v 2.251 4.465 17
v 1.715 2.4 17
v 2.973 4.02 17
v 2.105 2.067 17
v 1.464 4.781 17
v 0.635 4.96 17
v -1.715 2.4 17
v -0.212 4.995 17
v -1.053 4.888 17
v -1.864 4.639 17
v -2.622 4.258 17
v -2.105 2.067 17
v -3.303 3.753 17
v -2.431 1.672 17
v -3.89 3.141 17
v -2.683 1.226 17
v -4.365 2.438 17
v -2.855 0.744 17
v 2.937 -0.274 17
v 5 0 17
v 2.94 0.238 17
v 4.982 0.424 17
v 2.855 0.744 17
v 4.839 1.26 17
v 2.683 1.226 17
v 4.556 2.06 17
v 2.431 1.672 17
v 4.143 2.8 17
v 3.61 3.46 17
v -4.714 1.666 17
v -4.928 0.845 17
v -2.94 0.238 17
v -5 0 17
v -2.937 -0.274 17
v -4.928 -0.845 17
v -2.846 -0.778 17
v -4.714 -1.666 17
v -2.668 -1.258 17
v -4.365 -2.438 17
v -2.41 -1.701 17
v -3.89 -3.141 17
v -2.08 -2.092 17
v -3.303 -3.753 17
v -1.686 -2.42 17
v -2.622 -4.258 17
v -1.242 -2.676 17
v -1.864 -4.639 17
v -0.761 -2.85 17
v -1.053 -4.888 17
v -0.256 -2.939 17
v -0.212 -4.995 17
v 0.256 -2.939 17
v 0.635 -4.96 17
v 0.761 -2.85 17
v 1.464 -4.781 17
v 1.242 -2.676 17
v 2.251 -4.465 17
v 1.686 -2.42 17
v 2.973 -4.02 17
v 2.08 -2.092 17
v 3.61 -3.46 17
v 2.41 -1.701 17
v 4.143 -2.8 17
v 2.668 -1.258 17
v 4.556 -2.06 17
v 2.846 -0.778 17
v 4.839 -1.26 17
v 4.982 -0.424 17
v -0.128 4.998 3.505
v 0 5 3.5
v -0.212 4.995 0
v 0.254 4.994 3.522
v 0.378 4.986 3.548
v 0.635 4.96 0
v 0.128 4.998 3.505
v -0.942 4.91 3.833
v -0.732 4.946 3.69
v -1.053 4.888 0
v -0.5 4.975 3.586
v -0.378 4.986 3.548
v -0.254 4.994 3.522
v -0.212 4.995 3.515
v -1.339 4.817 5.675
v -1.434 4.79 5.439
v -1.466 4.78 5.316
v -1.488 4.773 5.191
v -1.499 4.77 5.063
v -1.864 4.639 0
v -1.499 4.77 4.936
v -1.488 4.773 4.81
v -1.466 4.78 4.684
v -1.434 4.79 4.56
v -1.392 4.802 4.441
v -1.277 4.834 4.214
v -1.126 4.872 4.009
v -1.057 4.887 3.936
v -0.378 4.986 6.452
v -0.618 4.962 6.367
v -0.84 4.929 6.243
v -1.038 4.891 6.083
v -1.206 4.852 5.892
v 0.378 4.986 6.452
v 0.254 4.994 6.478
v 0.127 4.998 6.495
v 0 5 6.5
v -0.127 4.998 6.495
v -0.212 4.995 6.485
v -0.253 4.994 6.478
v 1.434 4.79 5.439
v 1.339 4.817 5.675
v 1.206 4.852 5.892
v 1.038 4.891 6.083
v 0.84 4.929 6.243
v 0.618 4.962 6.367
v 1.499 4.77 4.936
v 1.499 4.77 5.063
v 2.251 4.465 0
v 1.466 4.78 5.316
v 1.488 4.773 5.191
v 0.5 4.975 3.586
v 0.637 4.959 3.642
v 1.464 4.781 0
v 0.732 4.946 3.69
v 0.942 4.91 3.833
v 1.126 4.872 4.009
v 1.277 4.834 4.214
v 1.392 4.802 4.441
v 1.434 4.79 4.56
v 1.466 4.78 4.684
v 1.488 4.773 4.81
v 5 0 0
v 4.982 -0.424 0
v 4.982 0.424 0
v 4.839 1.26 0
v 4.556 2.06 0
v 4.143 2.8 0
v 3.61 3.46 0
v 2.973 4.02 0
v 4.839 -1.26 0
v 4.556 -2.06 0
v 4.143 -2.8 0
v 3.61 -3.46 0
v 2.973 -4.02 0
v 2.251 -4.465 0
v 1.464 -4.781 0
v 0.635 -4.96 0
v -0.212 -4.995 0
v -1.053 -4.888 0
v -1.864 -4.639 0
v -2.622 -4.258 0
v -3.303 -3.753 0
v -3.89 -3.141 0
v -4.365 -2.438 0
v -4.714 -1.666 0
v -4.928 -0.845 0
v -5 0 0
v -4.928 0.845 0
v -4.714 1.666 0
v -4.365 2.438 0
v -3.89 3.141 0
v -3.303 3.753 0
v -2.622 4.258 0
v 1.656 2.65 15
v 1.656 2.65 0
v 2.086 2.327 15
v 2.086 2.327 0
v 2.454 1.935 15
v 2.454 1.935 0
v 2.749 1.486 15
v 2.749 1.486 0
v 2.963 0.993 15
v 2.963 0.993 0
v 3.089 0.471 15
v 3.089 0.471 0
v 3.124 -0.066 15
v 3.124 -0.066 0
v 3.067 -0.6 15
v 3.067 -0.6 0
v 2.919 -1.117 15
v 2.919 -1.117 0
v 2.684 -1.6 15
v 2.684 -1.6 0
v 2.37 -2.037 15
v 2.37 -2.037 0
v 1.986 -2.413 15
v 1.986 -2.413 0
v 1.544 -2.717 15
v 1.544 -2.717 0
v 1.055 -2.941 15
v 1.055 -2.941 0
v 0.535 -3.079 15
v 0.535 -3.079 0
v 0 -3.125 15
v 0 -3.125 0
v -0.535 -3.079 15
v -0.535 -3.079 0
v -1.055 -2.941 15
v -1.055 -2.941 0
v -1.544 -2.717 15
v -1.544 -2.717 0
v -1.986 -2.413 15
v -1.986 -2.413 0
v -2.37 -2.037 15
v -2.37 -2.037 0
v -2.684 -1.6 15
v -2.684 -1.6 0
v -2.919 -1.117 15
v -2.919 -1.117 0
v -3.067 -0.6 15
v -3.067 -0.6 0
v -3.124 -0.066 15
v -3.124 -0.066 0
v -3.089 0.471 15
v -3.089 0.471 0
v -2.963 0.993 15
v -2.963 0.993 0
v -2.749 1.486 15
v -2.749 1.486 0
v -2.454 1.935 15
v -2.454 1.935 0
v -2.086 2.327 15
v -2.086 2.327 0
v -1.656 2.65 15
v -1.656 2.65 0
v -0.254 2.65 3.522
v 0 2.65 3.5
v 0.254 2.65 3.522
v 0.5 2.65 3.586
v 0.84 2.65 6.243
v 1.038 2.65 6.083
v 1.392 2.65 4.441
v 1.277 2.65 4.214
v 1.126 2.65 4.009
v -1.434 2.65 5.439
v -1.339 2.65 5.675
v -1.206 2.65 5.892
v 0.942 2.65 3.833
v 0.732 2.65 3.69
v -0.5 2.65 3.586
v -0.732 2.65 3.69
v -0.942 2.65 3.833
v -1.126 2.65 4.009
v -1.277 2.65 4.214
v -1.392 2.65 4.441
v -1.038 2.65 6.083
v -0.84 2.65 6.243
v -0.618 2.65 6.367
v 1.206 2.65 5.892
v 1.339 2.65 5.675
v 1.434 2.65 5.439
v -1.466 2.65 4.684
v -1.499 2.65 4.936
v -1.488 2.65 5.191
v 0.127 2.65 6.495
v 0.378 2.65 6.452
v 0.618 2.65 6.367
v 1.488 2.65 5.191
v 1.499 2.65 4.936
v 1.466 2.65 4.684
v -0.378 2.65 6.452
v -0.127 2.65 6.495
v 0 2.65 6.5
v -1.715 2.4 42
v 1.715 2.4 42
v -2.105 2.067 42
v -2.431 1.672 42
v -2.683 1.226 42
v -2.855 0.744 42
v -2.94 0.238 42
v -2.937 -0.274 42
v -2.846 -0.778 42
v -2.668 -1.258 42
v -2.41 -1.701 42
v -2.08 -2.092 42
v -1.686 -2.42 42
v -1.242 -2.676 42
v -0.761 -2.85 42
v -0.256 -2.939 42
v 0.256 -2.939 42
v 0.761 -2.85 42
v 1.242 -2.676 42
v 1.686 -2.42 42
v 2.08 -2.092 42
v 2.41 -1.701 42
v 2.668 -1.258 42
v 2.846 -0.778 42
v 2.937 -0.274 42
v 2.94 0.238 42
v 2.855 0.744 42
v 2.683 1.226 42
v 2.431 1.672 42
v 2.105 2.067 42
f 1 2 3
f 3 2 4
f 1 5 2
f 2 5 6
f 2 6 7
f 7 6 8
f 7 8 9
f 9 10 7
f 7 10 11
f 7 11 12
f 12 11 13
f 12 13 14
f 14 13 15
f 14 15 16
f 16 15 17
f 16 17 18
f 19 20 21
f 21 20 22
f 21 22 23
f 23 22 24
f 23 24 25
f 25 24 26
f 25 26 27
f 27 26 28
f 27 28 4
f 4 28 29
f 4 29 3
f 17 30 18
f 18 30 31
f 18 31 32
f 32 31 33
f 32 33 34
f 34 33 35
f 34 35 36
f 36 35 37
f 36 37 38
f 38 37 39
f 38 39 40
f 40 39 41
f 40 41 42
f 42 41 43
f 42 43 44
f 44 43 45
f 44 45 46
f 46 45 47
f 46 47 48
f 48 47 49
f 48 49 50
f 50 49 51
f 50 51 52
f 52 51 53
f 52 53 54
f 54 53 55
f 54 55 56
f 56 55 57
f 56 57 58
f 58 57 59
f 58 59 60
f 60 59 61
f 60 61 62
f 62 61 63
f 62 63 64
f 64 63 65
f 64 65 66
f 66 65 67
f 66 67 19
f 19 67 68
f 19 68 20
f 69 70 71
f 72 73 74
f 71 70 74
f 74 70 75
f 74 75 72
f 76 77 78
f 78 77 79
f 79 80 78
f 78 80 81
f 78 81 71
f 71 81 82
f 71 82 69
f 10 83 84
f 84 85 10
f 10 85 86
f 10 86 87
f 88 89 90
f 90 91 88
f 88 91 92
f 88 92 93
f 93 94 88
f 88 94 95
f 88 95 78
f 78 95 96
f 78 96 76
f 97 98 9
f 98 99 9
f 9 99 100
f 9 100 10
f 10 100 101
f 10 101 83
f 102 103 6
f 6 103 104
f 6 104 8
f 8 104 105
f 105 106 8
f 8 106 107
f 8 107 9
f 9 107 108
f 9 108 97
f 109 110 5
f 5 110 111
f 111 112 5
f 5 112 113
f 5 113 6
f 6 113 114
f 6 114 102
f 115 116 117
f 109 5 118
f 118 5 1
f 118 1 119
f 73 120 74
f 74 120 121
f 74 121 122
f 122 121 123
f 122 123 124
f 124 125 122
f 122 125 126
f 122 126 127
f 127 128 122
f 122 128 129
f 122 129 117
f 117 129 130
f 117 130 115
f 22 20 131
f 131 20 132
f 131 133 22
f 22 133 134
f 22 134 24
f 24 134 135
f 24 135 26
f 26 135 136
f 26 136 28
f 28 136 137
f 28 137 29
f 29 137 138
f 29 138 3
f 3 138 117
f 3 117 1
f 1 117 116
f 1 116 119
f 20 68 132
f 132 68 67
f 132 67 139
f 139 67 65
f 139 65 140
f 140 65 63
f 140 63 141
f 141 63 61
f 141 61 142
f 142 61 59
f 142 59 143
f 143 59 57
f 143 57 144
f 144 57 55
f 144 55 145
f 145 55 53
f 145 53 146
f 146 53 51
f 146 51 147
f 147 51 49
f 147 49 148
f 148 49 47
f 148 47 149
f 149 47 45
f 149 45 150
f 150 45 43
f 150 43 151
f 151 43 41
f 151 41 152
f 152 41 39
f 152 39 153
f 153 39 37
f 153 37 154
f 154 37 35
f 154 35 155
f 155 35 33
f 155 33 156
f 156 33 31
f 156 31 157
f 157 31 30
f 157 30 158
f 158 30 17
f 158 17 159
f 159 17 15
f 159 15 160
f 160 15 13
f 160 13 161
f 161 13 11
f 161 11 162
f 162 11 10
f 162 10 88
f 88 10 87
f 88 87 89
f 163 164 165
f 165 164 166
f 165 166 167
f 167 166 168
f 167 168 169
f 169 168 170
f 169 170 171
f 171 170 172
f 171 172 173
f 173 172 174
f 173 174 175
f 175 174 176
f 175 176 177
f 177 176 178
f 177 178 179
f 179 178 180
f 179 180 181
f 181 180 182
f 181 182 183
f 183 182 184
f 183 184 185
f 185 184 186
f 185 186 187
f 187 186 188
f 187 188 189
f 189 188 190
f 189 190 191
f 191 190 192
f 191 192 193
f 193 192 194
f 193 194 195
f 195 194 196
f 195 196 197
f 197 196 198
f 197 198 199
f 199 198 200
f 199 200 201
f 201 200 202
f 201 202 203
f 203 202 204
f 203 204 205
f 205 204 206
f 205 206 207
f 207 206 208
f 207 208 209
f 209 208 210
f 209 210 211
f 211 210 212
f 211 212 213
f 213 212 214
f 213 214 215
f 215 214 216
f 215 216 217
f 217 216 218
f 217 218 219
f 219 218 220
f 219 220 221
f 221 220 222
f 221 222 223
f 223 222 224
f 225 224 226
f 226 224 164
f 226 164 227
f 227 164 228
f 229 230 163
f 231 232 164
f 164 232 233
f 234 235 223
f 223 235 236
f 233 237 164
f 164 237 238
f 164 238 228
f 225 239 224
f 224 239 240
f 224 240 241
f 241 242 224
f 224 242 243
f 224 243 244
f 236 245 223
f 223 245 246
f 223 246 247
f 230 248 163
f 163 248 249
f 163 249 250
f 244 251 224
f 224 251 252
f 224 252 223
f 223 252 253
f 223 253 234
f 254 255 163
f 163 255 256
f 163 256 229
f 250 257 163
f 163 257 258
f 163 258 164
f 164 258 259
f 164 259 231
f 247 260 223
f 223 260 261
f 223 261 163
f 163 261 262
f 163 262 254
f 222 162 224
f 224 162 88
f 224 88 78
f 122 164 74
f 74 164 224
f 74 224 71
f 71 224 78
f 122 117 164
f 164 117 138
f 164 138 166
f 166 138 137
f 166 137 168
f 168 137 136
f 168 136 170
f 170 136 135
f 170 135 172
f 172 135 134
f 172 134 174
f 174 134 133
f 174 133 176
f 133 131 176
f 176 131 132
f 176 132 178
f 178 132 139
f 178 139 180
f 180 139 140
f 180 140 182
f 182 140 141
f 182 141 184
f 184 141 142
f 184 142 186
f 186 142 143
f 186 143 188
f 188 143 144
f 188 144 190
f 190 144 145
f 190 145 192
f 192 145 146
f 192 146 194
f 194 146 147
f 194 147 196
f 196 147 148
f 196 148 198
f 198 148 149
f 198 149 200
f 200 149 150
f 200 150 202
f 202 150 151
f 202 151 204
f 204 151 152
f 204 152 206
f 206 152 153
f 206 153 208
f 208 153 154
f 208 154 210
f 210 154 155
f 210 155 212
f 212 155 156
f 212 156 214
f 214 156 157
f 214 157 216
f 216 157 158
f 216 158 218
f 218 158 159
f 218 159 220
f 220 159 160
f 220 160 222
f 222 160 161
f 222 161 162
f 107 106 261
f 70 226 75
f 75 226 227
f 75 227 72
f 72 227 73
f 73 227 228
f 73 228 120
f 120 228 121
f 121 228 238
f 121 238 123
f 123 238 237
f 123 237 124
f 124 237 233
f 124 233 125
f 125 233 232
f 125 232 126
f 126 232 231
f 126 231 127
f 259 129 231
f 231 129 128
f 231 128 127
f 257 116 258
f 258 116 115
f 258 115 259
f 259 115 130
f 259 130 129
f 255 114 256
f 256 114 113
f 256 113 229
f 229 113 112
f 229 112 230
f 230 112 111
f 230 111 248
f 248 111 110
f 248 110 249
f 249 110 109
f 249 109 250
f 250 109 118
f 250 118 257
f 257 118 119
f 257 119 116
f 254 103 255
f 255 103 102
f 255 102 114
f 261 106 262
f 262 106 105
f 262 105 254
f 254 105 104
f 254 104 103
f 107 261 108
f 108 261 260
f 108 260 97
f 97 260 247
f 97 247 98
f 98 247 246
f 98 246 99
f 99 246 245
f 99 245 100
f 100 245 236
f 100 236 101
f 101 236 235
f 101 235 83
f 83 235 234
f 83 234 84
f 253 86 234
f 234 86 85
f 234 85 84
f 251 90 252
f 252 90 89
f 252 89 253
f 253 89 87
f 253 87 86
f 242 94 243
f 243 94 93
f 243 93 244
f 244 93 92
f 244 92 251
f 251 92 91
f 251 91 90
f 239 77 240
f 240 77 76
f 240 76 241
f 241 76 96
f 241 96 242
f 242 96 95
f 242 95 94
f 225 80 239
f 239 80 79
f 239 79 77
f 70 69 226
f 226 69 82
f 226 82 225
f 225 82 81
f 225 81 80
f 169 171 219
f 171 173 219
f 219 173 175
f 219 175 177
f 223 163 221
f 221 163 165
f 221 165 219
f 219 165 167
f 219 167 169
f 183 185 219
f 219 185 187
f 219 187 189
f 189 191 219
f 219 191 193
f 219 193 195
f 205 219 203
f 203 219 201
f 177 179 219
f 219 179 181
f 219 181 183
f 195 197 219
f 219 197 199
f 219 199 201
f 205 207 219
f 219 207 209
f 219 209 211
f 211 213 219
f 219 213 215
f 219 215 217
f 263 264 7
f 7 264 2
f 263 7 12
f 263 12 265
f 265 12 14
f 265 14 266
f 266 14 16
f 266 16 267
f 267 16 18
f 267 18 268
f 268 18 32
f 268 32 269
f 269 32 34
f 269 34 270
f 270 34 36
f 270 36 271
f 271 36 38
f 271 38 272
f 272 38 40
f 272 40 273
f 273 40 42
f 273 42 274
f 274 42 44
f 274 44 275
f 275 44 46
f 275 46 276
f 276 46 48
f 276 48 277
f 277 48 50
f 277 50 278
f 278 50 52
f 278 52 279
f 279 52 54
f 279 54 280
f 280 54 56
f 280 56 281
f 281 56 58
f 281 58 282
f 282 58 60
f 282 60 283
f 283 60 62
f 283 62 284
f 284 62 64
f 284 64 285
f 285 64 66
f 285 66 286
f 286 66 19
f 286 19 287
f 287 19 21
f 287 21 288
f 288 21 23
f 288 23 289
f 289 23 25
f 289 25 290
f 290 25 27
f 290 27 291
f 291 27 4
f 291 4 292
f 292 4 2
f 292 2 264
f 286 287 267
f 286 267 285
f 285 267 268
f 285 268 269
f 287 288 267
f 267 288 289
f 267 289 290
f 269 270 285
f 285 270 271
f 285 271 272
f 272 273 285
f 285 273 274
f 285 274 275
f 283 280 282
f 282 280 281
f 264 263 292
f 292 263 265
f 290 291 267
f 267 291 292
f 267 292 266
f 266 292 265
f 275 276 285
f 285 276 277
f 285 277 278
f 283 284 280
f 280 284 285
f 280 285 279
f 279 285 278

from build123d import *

# Parameters (mm, degrees)
SKETCH1_R               = 5
BOSS_EXTRUDE1_DEPTH     = 15
CUT_EXTRUDE1_REACH      = 18.583
CUT_EXTRUDE1_END_RADIUS = 5
SKETCH3_R               = 1.5
SKETCH4_R               = 5
BOSS_EXTRUDE2_DEPTH     = 2
BOSS_EXTRUDE3_DEPTH     = 25


with BuildPart() as part:
    # Sketch1 → Boss-Extrude1 (new body)
    with BuildSketch(Plane.XY):
        Circle(SKETCH1_R)
        with BuildLine():
            Line((-1.656238208, 2.65), (1.656238208, 2.65))
            ThreePointArc((1.656238208, 2.65), (0, -3.125), (-1.656238208, 2.65))
        make_face(mode=Mode.SUBTRACT)
    extrude(amount=BOSS_EXTRUDE1_DEPTH)

    # Cut-Extrude1: up to this cylinder (the profile starts inside it)
    cut_extrude1_end = Plane(origin=(0, 0, 5), z_dir=(0, 0, -1)) * Cylinder(CUT_EXTRUDE1_END_RADIUS, 48.166, mode=Mode.PRIVATE)
    # Sketch3 → Cut-Extrude1 (cut, up to the surface)
    with BuildSketch(Plane(origin=(0, 0, 0), x_dir=(1, 0, 0), z_dir=(0, 1, 0)), mode=Mode.PRIVATE) as cut_extrude1_sk1:
        with Locations(Location((0, -5, 0), (0, 0, 90))):
            Circle(SKETCH3_R)
    cut_extrude1_tool1 = extrude(cut_extrude1_sk1.sketch, amount=CUT_EXTRUDE1_REACH, mode=Mode.PRIVATE) & cut_extrude1_end
    add(cut_extrude1_tool1.solids().sort_by_distance((0, 0, 5))[0], mode=Mode.SUBTRACT)

    # Sketch4 → Boss-Extrude2 (add)
    with BuildSketch(Plane.XY.offset(15)):
        Circle(SKETCH4_R)
    extrude(amount=BOSS_EXTRUDE2_DEPTH)

    # Sketch6 → Boss-Extrude3 (add)
    with BuildSketch(Plane.XY.offset(17)):
        with BuildLine():
            Line((1.71537168, 2.4), (-1.71537168, 2.4))
            ThreePointArc((-1.71537168, 2.4), (-1.349472776, -2.623246696), (2.95, 0))
            ThreePointArc((2.95, 0), (2.623246696, 1.349472776), (1.71537168, 2.4))
        make_face()
    extrude(amount=BOSS_EXTRUDE3_DEPTH)


solid = part.part
